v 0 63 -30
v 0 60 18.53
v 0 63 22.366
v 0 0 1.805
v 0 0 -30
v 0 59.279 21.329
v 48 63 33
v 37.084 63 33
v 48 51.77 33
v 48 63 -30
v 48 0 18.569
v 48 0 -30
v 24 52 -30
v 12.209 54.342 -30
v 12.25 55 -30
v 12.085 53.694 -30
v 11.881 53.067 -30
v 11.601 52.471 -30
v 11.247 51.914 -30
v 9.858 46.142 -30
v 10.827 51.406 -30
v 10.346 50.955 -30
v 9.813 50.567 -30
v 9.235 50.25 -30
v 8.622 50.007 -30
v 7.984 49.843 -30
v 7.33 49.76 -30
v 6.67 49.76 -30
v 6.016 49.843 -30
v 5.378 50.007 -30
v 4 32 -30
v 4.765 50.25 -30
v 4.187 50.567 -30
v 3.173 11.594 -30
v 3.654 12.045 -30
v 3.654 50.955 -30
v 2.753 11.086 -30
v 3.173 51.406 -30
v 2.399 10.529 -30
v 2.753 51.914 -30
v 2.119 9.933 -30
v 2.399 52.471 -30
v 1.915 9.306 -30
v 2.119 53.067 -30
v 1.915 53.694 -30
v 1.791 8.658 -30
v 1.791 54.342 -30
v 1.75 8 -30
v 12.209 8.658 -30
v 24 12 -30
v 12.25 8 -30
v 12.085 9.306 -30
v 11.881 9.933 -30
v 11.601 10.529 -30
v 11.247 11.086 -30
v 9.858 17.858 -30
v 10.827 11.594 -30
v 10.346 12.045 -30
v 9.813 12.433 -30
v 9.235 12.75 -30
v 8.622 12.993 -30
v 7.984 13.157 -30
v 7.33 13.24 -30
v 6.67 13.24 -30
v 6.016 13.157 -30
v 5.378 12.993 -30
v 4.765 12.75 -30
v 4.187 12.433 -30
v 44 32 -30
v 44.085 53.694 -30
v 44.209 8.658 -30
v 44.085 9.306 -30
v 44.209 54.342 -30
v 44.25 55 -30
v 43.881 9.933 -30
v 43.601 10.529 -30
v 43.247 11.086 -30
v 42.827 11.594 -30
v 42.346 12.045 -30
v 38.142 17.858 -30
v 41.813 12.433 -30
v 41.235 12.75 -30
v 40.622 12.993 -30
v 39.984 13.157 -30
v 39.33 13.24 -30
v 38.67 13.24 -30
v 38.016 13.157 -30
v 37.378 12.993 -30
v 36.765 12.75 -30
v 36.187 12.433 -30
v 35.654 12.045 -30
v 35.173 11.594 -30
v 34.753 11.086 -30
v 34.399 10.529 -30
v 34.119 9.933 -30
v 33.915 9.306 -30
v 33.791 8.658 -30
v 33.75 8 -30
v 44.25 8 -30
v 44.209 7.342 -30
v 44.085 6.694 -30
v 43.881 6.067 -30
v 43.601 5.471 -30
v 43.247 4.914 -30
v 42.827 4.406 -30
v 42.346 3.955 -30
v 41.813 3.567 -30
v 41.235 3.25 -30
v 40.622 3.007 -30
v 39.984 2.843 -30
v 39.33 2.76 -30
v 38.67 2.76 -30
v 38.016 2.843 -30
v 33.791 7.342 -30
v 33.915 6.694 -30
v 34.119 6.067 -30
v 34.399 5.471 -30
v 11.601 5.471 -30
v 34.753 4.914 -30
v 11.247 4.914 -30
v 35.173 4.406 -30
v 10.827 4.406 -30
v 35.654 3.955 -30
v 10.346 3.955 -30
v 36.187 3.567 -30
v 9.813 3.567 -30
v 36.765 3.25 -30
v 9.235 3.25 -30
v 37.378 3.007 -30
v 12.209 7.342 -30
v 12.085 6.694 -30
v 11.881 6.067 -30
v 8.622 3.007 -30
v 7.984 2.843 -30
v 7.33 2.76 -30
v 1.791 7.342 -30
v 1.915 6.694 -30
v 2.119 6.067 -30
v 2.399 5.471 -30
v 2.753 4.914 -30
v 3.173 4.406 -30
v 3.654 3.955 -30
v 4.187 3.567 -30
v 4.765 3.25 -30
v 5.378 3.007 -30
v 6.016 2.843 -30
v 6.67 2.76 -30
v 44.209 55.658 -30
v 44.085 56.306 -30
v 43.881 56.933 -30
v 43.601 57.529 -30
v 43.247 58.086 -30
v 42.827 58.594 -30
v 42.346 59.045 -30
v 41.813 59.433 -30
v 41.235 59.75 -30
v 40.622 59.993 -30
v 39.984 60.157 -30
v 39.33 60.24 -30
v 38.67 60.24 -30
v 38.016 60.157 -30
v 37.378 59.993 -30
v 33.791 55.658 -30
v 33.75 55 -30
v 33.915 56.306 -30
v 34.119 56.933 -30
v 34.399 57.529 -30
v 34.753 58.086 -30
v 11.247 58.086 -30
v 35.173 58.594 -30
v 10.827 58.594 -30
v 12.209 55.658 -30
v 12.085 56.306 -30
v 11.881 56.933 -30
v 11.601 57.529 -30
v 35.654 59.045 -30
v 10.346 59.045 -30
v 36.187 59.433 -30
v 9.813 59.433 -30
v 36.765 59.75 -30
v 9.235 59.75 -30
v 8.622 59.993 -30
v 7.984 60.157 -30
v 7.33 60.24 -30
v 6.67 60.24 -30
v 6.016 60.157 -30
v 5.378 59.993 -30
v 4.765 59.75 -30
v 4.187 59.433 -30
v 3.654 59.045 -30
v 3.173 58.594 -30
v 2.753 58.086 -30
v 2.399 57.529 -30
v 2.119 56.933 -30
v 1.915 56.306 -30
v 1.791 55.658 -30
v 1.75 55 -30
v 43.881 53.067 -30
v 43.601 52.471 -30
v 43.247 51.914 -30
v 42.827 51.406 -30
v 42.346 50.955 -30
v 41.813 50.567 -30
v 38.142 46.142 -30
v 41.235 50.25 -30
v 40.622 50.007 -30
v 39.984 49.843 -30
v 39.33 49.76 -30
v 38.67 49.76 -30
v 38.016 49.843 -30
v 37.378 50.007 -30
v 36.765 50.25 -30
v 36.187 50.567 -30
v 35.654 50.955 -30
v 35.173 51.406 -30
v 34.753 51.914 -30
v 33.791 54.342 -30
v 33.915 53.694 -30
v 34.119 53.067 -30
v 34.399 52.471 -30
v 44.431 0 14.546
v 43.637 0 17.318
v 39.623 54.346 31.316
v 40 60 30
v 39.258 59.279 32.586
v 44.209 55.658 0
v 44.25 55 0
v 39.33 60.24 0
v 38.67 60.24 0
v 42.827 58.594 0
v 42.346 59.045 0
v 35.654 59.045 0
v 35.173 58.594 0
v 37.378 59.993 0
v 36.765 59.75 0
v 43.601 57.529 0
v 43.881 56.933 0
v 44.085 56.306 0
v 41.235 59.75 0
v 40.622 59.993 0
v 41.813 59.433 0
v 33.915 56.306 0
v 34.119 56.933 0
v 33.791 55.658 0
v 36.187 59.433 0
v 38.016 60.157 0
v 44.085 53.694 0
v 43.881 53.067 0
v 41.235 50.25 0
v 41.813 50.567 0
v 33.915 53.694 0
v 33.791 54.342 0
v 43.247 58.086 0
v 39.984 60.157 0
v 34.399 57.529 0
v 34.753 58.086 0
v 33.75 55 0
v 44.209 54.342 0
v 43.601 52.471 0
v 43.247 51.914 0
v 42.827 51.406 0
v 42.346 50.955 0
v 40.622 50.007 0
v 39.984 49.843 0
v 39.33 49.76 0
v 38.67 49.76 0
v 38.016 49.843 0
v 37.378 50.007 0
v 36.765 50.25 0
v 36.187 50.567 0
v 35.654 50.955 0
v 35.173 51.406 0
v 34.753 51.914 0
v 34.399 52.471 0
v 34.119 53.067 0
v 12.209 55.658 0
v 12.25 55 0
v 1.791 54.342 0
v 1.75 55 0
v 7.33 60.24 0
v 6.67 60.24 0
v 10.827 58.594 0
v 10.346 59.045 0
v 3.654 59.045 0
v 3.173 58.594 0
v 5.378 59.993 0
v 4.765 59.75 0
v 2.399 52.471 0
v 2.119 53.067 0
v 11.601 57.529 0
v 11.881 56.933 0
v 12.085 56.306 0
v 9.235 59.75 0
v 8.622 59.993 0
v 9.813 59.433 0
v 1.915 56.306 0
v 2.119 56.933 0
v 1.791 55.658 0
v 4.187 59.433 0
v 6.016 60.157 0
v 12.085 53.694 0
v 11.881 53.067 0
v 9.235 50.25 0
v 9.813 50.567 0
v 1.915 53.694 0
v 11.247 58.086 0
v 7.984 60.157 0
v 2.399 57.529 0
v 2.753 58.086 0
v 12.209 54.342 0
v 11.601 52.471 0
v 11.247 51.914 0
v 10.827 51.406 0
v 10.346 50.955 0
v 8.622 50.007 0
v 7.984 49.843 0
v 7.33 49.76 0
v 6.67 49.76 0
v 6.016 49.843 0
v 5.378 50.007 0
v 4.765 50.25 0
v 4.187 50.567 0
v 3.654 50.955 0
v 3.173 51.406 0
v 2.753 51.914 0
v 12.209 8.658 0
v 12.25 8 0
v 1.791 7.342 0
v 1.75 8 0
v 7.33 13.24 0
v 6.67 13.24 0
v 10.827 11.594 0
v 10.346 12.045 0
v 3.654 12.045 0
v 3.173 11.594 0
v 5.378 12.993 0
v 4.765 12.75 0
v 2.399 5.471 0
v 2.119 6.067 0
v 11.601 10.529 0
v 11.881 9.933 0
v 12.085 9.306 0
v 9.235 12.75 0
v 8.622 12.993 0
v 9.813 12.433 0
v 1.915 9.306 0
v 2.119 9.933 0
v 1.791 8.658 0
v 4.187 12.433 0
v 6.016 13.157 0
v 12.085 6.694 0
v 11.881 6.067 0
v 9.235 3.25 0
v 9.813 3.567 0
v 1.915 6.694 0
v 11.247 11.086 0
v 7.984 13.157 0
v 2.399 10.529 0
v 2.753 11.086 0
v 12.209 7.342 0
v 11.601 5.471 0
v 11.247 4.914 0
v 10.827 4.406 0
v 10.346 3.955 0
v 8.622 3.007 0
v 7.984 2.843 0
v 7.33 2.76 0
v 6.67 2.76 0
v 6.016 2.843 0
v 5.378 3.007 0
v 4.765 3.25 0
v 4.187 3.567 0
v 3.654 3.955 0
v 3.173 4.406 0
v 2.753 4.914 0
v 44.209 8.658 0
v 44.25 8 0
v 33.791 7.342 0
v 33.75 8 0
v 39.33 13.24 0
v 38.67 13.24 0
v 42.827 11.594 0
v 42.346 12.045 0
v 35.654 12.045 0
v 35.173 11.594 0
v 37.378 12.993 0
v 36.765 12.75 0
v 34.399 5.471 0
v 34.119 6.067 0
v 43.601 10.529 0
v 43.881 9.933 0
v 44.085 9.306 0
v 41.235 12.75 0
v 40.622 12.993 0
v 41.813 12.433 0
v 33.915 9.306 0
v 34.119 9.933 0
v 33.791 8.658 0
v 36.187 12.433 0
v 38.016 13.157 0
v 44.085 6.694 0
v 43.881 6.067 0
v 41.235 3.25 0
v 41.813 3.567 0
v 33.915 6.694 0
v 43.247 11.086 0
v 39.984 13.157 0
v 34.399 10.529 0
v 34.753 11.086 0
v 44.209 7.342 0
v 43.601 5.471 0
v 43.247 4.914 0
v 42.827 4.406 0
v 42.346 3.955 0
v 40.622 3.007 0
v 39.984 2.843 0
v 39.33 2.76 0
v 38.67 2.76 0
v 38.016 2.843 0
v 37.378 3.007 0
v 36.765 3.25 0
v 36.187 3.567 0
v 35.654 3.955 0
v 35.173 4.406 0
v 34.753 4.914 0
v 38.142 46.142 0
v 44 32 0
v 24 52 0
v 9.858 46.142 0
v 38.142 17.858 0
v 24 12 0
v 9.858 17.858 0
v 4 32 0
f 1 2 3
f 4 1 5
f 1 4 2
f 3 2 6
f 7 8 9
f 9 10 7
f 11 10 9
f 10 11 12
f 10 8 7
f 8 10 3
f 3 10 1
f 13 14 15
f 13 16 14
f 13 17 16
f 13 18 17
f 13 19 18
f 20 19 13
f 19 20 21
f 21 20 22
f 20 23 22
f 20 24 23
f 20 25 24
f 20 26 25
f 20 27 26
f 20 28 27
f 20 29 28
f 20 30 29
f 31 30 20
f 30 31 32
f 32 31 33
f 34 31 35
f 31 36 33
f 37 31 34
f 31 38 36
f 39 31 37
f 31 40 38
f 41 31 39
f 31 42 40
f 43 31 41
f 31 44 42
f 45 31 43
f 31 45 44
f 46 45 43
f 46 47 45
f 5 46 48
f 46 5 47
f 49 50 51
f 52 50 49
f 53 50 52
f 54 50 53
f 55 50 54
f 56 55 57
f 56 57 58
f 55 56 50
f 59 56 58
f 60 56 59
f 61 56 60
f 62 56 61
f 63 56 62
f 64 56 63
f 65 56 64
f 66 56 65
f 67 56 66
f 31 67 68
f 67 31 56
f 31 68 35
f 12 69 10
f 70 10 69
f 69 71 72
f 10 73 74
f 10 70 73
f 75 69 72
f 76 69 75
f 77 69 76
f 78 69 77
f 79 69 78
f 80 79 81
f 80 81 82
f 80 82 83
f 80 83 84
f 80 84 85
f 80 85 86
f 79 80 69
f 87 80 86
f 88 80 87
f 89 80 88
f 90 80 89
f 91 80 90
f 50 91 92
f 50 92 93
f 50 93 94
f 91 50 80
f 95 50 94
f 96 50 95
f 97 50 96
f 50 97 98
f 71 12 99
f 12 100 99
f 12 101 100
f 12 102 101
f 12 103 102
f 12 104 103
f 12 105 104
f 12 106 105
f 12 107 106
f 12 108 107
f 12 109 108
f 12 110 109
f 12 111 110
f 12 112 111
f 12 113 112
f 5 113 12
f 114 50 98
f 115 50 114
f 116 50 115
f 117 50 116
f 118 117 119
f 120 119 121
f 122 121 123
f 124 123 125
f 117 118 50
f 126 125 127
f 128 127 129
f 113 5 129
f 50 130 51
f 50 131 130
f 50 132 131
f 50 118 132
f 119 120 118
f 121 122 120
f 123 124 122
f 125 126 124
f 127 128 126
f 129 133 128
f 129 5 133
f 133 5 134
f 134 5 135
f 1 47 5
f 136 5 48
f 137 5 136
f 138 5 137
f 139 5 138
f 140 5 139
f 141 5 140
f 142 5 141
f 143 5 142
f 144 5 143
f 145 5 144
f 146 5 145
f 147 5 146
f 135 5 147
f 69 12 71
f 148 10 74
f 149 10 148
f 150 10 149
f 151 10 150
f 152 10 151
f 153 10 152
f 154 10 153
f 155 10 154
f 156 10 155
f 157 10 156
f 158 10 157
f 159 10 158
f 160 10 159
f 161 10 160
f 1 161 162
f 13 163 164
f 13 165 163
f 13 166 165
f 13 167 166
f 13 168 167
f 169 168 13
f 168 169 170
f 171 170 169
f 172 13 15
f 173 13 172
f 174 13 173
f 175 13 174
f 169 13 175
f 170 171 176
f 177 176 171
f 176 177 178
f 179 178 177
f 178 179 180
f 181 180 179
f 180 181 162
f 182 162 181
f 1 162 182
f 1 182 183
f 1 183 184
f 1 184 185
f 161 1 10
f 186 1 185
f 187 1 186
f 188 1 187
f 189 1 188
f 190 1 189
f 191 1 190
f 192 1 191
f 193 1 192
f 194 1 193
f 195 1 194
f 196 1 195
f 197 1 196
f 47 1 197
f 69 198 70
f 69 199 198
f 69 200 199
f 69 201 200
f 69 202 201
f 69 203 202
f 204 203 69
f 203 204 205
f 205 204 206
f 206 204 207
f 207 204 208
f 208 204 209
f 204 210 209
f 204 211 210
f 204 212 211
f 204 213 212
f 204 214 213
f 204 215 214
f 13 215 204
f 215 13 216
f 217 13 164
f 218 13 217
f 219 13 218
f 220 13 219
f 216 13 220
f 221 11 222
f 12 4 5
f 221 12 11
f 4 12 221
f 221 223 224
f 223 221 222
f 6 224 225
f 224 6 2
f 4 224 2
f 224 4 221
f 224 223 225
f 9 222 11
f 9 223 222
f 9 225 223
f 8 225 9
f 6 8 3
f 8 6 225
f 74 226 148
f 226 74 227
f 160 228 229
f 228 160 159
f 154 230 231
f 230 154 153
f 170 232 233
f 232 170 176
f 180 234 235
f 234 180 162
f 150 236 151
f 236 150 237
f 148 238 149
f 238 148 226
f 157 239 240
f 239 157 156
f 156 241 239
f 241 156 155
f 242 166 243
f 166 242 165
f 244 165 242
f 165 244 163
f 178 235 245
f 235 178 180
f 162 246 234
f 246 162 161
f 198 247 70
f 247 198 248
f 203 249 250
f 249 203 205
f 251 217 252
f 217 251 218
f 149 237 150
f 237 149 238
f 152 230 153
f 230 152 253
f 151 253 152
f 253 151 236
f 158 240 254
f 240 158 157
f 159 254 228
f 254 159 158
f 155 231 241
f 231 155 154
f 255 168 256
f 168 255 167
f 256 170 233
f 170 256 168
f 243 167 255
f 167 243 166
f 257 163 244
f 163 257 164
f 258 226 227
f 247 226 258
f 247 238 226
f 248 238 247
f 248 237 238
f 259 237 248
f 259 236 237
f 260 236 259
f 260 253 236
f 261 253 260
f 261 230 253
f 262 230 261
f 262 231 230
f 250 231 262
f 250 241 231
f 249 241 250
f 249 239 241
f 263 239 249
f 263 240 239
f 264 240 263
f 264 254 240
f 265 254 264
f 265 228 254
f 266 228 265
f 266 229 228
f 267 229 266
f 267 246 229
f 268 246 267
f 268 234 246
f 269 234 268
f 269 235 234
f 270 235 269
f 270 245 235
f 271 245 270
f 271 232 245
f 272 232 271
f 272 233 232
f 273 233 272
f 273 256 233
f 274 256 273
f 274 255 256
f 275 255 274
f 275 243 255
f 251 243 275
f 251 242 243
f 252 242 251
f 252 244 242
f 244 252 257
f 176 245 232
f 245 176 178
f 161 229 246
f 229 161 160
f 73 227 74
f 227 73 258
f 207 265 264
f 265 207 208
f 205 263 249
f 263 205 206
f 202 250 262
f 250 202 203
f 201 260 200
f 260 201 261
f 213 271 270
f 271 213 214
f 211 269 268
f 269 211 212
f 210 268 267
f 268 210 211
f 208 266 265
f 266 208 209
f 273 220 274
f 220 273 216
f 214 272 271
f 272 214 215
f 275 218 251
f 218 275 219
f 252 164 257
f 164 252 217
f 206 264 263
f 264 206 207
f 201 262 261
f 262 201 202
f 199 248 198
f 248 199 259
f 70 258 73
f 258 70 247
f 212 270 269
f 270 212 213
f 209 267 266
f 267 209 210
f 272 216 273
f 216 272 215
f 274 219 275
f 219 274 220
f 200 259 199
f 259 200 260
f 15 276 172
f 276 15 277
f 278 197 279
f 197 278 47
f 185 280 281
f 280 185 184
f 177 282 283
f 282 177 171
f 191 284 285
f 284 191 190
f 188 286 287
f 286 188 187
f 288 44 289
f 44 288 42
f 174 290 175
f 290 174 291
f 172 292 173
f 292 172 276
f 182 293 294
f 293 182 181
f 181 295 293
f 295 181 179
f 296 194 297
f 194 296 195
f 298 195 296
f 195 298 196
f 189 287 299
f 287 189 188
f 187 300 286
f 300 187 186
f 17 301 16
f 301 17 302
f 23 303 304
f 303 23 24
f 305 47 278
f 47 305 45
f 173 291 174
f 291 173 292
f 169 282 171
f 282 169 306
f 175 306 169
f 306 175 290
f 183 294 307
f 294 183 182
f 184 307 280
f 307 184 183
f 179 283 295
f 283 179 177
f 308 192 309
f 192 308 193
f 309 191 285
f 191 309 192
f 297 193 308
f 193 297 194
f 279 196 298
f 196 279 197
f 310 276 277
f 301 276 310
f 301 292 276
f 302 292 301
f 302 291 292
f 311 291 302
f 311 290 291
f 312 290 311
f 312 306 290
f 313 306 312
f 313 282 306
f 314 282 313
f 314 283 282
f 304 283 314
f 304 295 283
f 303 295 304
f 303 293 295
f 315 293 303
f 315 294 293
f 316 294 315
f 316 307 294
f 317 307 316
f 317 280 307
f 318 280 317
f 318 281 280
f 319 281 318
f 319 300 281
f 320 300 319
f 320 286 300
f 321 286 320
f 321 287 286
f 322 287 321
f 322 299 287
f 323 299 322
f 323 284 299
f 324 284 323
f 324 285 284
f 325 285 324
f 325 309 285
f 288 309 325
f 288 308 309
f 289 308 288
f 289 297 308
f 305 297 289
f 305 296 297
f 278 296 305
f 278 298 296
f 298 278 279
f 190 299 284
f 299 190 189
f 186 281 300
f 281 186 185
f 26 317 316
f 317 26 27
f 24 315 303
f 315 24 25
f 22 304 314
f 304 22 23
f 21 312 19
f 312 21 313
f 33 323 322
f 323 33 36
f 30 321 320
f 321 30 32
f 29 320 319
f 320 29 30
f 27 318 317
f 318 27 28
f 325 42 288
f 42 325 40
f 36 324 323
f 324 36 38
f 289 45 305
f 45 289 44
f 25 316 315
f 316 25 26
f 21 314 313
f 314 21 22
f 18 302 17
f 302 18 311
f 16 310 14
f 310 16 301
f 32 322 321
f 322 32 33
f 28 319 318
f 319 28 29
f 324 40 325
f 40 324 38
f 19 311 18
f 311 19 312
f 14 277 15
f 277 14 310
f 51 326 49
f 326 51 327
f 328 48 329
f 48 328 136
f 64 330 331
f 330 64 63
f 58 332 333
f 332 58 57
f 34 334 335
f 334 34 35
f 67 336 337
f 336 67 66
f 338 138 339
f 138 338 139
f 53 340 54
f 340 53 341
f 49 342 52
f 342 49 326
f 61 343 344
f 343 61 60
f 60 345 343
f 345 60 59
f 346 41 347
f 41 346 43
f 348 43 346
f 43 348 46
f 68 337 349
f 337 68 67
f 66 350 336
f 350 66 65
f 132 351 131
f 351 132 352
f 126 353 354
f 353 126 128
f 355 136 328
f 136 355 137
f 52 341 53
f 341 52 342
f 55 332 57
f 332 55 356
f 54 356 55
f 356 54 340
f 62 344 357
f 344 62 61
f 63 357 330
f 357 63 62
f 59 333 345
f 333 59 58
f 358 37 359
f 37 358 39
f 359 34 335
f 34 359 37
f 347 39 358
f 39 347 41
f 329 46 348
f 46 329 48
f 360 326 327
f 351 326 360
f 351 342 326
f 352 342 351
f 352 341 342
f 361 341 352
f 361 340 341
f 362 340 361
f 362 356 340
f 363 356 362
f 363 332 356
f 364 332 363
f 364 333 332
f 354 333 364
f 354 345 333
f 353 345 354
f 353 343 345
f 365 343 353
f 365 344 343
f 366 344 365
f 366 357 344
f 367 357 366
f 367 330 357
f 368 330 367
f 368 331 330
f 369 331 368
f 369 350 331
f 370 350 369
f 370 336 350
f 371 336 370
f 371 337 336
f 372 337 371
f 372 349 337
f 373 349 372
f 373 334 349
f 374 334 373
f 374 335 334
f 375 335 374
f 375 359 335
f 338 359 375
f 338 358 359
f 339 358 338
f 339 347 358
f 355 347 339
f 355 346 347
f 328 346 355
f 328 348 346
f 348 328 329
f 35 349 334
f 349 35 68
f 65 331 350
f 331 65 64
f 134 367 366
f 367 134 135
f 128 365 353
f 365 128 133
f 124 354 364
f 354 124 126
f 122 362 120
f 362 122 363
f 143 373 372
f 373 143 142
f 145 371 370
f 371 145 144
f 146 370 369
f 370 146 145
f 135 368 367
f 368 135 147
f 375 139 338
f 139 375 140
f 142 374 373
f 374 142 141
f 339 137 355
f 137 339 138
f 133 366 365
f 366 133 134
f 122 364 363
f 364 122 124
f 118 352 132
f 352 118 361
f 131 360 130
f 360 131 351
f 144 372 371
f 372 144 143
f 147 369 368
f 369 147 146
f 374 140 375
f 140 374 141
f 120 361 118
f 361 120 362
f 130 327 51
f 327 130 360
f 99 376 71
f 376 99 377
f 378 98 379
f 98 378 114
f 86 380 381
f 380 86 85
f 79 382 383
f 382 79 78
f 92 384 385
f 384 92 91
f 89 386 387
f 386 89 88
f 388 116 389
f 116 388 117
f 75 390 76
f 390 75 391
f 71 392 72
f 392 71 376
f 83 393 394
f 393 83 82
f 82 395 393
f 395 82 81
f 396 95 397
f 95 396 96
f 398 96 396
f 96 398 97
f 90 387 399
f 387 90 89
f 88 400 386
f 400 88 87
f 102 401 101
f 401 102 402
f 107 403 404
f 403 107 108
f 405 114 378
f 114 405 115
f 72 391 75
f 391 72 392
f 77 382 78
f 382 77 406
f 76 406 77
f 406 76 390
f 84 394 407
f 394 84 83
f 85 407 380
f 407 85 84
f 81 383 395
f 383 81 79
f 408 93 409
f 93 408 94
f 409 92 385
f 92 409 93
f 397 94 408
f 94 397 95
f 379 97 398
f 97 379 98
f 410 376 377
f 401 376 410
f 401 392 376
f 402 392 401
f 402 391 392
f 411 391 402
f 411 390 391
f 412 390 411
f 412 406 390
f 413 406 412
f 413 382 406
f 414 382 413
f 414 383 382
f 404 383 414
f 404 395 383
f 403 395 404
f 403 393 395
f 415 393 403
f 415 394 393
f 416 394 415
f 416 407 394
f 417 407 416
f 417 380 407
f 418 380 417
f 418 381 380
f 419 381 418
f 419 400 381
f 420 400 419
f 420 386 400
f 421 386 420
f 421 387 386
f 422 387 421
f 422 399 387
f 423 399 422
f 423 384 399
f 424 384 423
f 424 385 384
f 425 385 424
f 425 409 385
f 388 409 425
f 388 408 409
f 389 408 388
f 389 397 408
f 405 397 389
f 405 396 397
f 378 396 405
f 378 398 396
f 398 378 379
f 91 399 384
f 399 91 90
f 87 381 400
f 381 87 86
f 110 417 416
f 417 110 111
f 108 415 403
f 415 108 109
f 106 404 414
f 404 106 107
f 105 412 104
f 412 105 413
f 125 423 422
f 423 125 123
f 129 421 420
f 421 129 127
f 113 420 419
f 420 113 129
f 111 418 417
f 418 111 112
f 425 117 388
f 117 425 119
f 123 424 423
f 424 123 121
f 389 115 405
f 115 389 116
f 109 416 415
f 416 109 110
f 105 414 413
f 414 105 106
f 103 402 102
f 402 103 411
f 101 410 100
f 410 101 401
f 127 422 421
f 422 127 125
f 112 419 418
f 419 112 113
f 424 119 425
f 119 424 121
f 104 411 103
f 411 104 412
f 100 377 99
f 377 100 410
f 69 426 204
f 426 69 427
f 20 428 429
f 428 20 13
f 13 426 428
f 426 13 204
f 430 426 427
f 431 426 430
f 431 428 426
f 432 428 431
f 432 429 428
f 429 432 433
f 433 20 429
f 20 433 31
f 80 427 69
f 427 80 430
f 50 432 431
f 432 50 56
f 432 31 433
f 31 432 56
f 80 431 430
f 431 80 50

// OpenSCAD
board_primary_slope = 16;
board_secondary_slope = 15;
pocket_depth = 1.7;
echo (109.94-108.33);  //1.61

// Transformation: do the rotation.
module transform_top_board(lift_z=0) {
  translate([0, 0, lift_z]) {
    rotate(a=board_secondary_slope, v=[1, 0, tan(board_primary_slope)])
    rotate([0, -board_primary_slope, 0]) {
      children();
    }
  }
}

module untransform_top_board(lift_z=0) {
  rotate([0, board_primary_slope, 0])
  rotate(a=-board_secondary_slope, v=[1, 0, tan(board_primary_slope)]) {
    translate([0, 0, -lift_z]) {
      children();
    }
  }
}


difference()
{
    translate([0, 0, -30]) cube([43+5, 63, 30+33]);
    translate([40, 60, 30])transform_top_board() translate([-110, -110, 0])  
            cube([110,110, 60]);
    translate([40, 60, 33])transform_top_board() translate([-110, -110, 0])  
            cube([130,130, 60]);
    translate([39, 55, -31]) cylinder(h=31, d=10.5, $fn=50);
    translate([7, 55, -31]) cylinder(h=31, d=10.5, $fn=50);
    translate([7, 8, -31]) cylinder(h=31, d=10.5, $fn=50);
    translate([39, 8, -31]) cylinder(h=31, d=10.5, $fn=50);
    translate([24, 32, -31]) cylinder(h=31, d=40, $fn=8);
}
    
